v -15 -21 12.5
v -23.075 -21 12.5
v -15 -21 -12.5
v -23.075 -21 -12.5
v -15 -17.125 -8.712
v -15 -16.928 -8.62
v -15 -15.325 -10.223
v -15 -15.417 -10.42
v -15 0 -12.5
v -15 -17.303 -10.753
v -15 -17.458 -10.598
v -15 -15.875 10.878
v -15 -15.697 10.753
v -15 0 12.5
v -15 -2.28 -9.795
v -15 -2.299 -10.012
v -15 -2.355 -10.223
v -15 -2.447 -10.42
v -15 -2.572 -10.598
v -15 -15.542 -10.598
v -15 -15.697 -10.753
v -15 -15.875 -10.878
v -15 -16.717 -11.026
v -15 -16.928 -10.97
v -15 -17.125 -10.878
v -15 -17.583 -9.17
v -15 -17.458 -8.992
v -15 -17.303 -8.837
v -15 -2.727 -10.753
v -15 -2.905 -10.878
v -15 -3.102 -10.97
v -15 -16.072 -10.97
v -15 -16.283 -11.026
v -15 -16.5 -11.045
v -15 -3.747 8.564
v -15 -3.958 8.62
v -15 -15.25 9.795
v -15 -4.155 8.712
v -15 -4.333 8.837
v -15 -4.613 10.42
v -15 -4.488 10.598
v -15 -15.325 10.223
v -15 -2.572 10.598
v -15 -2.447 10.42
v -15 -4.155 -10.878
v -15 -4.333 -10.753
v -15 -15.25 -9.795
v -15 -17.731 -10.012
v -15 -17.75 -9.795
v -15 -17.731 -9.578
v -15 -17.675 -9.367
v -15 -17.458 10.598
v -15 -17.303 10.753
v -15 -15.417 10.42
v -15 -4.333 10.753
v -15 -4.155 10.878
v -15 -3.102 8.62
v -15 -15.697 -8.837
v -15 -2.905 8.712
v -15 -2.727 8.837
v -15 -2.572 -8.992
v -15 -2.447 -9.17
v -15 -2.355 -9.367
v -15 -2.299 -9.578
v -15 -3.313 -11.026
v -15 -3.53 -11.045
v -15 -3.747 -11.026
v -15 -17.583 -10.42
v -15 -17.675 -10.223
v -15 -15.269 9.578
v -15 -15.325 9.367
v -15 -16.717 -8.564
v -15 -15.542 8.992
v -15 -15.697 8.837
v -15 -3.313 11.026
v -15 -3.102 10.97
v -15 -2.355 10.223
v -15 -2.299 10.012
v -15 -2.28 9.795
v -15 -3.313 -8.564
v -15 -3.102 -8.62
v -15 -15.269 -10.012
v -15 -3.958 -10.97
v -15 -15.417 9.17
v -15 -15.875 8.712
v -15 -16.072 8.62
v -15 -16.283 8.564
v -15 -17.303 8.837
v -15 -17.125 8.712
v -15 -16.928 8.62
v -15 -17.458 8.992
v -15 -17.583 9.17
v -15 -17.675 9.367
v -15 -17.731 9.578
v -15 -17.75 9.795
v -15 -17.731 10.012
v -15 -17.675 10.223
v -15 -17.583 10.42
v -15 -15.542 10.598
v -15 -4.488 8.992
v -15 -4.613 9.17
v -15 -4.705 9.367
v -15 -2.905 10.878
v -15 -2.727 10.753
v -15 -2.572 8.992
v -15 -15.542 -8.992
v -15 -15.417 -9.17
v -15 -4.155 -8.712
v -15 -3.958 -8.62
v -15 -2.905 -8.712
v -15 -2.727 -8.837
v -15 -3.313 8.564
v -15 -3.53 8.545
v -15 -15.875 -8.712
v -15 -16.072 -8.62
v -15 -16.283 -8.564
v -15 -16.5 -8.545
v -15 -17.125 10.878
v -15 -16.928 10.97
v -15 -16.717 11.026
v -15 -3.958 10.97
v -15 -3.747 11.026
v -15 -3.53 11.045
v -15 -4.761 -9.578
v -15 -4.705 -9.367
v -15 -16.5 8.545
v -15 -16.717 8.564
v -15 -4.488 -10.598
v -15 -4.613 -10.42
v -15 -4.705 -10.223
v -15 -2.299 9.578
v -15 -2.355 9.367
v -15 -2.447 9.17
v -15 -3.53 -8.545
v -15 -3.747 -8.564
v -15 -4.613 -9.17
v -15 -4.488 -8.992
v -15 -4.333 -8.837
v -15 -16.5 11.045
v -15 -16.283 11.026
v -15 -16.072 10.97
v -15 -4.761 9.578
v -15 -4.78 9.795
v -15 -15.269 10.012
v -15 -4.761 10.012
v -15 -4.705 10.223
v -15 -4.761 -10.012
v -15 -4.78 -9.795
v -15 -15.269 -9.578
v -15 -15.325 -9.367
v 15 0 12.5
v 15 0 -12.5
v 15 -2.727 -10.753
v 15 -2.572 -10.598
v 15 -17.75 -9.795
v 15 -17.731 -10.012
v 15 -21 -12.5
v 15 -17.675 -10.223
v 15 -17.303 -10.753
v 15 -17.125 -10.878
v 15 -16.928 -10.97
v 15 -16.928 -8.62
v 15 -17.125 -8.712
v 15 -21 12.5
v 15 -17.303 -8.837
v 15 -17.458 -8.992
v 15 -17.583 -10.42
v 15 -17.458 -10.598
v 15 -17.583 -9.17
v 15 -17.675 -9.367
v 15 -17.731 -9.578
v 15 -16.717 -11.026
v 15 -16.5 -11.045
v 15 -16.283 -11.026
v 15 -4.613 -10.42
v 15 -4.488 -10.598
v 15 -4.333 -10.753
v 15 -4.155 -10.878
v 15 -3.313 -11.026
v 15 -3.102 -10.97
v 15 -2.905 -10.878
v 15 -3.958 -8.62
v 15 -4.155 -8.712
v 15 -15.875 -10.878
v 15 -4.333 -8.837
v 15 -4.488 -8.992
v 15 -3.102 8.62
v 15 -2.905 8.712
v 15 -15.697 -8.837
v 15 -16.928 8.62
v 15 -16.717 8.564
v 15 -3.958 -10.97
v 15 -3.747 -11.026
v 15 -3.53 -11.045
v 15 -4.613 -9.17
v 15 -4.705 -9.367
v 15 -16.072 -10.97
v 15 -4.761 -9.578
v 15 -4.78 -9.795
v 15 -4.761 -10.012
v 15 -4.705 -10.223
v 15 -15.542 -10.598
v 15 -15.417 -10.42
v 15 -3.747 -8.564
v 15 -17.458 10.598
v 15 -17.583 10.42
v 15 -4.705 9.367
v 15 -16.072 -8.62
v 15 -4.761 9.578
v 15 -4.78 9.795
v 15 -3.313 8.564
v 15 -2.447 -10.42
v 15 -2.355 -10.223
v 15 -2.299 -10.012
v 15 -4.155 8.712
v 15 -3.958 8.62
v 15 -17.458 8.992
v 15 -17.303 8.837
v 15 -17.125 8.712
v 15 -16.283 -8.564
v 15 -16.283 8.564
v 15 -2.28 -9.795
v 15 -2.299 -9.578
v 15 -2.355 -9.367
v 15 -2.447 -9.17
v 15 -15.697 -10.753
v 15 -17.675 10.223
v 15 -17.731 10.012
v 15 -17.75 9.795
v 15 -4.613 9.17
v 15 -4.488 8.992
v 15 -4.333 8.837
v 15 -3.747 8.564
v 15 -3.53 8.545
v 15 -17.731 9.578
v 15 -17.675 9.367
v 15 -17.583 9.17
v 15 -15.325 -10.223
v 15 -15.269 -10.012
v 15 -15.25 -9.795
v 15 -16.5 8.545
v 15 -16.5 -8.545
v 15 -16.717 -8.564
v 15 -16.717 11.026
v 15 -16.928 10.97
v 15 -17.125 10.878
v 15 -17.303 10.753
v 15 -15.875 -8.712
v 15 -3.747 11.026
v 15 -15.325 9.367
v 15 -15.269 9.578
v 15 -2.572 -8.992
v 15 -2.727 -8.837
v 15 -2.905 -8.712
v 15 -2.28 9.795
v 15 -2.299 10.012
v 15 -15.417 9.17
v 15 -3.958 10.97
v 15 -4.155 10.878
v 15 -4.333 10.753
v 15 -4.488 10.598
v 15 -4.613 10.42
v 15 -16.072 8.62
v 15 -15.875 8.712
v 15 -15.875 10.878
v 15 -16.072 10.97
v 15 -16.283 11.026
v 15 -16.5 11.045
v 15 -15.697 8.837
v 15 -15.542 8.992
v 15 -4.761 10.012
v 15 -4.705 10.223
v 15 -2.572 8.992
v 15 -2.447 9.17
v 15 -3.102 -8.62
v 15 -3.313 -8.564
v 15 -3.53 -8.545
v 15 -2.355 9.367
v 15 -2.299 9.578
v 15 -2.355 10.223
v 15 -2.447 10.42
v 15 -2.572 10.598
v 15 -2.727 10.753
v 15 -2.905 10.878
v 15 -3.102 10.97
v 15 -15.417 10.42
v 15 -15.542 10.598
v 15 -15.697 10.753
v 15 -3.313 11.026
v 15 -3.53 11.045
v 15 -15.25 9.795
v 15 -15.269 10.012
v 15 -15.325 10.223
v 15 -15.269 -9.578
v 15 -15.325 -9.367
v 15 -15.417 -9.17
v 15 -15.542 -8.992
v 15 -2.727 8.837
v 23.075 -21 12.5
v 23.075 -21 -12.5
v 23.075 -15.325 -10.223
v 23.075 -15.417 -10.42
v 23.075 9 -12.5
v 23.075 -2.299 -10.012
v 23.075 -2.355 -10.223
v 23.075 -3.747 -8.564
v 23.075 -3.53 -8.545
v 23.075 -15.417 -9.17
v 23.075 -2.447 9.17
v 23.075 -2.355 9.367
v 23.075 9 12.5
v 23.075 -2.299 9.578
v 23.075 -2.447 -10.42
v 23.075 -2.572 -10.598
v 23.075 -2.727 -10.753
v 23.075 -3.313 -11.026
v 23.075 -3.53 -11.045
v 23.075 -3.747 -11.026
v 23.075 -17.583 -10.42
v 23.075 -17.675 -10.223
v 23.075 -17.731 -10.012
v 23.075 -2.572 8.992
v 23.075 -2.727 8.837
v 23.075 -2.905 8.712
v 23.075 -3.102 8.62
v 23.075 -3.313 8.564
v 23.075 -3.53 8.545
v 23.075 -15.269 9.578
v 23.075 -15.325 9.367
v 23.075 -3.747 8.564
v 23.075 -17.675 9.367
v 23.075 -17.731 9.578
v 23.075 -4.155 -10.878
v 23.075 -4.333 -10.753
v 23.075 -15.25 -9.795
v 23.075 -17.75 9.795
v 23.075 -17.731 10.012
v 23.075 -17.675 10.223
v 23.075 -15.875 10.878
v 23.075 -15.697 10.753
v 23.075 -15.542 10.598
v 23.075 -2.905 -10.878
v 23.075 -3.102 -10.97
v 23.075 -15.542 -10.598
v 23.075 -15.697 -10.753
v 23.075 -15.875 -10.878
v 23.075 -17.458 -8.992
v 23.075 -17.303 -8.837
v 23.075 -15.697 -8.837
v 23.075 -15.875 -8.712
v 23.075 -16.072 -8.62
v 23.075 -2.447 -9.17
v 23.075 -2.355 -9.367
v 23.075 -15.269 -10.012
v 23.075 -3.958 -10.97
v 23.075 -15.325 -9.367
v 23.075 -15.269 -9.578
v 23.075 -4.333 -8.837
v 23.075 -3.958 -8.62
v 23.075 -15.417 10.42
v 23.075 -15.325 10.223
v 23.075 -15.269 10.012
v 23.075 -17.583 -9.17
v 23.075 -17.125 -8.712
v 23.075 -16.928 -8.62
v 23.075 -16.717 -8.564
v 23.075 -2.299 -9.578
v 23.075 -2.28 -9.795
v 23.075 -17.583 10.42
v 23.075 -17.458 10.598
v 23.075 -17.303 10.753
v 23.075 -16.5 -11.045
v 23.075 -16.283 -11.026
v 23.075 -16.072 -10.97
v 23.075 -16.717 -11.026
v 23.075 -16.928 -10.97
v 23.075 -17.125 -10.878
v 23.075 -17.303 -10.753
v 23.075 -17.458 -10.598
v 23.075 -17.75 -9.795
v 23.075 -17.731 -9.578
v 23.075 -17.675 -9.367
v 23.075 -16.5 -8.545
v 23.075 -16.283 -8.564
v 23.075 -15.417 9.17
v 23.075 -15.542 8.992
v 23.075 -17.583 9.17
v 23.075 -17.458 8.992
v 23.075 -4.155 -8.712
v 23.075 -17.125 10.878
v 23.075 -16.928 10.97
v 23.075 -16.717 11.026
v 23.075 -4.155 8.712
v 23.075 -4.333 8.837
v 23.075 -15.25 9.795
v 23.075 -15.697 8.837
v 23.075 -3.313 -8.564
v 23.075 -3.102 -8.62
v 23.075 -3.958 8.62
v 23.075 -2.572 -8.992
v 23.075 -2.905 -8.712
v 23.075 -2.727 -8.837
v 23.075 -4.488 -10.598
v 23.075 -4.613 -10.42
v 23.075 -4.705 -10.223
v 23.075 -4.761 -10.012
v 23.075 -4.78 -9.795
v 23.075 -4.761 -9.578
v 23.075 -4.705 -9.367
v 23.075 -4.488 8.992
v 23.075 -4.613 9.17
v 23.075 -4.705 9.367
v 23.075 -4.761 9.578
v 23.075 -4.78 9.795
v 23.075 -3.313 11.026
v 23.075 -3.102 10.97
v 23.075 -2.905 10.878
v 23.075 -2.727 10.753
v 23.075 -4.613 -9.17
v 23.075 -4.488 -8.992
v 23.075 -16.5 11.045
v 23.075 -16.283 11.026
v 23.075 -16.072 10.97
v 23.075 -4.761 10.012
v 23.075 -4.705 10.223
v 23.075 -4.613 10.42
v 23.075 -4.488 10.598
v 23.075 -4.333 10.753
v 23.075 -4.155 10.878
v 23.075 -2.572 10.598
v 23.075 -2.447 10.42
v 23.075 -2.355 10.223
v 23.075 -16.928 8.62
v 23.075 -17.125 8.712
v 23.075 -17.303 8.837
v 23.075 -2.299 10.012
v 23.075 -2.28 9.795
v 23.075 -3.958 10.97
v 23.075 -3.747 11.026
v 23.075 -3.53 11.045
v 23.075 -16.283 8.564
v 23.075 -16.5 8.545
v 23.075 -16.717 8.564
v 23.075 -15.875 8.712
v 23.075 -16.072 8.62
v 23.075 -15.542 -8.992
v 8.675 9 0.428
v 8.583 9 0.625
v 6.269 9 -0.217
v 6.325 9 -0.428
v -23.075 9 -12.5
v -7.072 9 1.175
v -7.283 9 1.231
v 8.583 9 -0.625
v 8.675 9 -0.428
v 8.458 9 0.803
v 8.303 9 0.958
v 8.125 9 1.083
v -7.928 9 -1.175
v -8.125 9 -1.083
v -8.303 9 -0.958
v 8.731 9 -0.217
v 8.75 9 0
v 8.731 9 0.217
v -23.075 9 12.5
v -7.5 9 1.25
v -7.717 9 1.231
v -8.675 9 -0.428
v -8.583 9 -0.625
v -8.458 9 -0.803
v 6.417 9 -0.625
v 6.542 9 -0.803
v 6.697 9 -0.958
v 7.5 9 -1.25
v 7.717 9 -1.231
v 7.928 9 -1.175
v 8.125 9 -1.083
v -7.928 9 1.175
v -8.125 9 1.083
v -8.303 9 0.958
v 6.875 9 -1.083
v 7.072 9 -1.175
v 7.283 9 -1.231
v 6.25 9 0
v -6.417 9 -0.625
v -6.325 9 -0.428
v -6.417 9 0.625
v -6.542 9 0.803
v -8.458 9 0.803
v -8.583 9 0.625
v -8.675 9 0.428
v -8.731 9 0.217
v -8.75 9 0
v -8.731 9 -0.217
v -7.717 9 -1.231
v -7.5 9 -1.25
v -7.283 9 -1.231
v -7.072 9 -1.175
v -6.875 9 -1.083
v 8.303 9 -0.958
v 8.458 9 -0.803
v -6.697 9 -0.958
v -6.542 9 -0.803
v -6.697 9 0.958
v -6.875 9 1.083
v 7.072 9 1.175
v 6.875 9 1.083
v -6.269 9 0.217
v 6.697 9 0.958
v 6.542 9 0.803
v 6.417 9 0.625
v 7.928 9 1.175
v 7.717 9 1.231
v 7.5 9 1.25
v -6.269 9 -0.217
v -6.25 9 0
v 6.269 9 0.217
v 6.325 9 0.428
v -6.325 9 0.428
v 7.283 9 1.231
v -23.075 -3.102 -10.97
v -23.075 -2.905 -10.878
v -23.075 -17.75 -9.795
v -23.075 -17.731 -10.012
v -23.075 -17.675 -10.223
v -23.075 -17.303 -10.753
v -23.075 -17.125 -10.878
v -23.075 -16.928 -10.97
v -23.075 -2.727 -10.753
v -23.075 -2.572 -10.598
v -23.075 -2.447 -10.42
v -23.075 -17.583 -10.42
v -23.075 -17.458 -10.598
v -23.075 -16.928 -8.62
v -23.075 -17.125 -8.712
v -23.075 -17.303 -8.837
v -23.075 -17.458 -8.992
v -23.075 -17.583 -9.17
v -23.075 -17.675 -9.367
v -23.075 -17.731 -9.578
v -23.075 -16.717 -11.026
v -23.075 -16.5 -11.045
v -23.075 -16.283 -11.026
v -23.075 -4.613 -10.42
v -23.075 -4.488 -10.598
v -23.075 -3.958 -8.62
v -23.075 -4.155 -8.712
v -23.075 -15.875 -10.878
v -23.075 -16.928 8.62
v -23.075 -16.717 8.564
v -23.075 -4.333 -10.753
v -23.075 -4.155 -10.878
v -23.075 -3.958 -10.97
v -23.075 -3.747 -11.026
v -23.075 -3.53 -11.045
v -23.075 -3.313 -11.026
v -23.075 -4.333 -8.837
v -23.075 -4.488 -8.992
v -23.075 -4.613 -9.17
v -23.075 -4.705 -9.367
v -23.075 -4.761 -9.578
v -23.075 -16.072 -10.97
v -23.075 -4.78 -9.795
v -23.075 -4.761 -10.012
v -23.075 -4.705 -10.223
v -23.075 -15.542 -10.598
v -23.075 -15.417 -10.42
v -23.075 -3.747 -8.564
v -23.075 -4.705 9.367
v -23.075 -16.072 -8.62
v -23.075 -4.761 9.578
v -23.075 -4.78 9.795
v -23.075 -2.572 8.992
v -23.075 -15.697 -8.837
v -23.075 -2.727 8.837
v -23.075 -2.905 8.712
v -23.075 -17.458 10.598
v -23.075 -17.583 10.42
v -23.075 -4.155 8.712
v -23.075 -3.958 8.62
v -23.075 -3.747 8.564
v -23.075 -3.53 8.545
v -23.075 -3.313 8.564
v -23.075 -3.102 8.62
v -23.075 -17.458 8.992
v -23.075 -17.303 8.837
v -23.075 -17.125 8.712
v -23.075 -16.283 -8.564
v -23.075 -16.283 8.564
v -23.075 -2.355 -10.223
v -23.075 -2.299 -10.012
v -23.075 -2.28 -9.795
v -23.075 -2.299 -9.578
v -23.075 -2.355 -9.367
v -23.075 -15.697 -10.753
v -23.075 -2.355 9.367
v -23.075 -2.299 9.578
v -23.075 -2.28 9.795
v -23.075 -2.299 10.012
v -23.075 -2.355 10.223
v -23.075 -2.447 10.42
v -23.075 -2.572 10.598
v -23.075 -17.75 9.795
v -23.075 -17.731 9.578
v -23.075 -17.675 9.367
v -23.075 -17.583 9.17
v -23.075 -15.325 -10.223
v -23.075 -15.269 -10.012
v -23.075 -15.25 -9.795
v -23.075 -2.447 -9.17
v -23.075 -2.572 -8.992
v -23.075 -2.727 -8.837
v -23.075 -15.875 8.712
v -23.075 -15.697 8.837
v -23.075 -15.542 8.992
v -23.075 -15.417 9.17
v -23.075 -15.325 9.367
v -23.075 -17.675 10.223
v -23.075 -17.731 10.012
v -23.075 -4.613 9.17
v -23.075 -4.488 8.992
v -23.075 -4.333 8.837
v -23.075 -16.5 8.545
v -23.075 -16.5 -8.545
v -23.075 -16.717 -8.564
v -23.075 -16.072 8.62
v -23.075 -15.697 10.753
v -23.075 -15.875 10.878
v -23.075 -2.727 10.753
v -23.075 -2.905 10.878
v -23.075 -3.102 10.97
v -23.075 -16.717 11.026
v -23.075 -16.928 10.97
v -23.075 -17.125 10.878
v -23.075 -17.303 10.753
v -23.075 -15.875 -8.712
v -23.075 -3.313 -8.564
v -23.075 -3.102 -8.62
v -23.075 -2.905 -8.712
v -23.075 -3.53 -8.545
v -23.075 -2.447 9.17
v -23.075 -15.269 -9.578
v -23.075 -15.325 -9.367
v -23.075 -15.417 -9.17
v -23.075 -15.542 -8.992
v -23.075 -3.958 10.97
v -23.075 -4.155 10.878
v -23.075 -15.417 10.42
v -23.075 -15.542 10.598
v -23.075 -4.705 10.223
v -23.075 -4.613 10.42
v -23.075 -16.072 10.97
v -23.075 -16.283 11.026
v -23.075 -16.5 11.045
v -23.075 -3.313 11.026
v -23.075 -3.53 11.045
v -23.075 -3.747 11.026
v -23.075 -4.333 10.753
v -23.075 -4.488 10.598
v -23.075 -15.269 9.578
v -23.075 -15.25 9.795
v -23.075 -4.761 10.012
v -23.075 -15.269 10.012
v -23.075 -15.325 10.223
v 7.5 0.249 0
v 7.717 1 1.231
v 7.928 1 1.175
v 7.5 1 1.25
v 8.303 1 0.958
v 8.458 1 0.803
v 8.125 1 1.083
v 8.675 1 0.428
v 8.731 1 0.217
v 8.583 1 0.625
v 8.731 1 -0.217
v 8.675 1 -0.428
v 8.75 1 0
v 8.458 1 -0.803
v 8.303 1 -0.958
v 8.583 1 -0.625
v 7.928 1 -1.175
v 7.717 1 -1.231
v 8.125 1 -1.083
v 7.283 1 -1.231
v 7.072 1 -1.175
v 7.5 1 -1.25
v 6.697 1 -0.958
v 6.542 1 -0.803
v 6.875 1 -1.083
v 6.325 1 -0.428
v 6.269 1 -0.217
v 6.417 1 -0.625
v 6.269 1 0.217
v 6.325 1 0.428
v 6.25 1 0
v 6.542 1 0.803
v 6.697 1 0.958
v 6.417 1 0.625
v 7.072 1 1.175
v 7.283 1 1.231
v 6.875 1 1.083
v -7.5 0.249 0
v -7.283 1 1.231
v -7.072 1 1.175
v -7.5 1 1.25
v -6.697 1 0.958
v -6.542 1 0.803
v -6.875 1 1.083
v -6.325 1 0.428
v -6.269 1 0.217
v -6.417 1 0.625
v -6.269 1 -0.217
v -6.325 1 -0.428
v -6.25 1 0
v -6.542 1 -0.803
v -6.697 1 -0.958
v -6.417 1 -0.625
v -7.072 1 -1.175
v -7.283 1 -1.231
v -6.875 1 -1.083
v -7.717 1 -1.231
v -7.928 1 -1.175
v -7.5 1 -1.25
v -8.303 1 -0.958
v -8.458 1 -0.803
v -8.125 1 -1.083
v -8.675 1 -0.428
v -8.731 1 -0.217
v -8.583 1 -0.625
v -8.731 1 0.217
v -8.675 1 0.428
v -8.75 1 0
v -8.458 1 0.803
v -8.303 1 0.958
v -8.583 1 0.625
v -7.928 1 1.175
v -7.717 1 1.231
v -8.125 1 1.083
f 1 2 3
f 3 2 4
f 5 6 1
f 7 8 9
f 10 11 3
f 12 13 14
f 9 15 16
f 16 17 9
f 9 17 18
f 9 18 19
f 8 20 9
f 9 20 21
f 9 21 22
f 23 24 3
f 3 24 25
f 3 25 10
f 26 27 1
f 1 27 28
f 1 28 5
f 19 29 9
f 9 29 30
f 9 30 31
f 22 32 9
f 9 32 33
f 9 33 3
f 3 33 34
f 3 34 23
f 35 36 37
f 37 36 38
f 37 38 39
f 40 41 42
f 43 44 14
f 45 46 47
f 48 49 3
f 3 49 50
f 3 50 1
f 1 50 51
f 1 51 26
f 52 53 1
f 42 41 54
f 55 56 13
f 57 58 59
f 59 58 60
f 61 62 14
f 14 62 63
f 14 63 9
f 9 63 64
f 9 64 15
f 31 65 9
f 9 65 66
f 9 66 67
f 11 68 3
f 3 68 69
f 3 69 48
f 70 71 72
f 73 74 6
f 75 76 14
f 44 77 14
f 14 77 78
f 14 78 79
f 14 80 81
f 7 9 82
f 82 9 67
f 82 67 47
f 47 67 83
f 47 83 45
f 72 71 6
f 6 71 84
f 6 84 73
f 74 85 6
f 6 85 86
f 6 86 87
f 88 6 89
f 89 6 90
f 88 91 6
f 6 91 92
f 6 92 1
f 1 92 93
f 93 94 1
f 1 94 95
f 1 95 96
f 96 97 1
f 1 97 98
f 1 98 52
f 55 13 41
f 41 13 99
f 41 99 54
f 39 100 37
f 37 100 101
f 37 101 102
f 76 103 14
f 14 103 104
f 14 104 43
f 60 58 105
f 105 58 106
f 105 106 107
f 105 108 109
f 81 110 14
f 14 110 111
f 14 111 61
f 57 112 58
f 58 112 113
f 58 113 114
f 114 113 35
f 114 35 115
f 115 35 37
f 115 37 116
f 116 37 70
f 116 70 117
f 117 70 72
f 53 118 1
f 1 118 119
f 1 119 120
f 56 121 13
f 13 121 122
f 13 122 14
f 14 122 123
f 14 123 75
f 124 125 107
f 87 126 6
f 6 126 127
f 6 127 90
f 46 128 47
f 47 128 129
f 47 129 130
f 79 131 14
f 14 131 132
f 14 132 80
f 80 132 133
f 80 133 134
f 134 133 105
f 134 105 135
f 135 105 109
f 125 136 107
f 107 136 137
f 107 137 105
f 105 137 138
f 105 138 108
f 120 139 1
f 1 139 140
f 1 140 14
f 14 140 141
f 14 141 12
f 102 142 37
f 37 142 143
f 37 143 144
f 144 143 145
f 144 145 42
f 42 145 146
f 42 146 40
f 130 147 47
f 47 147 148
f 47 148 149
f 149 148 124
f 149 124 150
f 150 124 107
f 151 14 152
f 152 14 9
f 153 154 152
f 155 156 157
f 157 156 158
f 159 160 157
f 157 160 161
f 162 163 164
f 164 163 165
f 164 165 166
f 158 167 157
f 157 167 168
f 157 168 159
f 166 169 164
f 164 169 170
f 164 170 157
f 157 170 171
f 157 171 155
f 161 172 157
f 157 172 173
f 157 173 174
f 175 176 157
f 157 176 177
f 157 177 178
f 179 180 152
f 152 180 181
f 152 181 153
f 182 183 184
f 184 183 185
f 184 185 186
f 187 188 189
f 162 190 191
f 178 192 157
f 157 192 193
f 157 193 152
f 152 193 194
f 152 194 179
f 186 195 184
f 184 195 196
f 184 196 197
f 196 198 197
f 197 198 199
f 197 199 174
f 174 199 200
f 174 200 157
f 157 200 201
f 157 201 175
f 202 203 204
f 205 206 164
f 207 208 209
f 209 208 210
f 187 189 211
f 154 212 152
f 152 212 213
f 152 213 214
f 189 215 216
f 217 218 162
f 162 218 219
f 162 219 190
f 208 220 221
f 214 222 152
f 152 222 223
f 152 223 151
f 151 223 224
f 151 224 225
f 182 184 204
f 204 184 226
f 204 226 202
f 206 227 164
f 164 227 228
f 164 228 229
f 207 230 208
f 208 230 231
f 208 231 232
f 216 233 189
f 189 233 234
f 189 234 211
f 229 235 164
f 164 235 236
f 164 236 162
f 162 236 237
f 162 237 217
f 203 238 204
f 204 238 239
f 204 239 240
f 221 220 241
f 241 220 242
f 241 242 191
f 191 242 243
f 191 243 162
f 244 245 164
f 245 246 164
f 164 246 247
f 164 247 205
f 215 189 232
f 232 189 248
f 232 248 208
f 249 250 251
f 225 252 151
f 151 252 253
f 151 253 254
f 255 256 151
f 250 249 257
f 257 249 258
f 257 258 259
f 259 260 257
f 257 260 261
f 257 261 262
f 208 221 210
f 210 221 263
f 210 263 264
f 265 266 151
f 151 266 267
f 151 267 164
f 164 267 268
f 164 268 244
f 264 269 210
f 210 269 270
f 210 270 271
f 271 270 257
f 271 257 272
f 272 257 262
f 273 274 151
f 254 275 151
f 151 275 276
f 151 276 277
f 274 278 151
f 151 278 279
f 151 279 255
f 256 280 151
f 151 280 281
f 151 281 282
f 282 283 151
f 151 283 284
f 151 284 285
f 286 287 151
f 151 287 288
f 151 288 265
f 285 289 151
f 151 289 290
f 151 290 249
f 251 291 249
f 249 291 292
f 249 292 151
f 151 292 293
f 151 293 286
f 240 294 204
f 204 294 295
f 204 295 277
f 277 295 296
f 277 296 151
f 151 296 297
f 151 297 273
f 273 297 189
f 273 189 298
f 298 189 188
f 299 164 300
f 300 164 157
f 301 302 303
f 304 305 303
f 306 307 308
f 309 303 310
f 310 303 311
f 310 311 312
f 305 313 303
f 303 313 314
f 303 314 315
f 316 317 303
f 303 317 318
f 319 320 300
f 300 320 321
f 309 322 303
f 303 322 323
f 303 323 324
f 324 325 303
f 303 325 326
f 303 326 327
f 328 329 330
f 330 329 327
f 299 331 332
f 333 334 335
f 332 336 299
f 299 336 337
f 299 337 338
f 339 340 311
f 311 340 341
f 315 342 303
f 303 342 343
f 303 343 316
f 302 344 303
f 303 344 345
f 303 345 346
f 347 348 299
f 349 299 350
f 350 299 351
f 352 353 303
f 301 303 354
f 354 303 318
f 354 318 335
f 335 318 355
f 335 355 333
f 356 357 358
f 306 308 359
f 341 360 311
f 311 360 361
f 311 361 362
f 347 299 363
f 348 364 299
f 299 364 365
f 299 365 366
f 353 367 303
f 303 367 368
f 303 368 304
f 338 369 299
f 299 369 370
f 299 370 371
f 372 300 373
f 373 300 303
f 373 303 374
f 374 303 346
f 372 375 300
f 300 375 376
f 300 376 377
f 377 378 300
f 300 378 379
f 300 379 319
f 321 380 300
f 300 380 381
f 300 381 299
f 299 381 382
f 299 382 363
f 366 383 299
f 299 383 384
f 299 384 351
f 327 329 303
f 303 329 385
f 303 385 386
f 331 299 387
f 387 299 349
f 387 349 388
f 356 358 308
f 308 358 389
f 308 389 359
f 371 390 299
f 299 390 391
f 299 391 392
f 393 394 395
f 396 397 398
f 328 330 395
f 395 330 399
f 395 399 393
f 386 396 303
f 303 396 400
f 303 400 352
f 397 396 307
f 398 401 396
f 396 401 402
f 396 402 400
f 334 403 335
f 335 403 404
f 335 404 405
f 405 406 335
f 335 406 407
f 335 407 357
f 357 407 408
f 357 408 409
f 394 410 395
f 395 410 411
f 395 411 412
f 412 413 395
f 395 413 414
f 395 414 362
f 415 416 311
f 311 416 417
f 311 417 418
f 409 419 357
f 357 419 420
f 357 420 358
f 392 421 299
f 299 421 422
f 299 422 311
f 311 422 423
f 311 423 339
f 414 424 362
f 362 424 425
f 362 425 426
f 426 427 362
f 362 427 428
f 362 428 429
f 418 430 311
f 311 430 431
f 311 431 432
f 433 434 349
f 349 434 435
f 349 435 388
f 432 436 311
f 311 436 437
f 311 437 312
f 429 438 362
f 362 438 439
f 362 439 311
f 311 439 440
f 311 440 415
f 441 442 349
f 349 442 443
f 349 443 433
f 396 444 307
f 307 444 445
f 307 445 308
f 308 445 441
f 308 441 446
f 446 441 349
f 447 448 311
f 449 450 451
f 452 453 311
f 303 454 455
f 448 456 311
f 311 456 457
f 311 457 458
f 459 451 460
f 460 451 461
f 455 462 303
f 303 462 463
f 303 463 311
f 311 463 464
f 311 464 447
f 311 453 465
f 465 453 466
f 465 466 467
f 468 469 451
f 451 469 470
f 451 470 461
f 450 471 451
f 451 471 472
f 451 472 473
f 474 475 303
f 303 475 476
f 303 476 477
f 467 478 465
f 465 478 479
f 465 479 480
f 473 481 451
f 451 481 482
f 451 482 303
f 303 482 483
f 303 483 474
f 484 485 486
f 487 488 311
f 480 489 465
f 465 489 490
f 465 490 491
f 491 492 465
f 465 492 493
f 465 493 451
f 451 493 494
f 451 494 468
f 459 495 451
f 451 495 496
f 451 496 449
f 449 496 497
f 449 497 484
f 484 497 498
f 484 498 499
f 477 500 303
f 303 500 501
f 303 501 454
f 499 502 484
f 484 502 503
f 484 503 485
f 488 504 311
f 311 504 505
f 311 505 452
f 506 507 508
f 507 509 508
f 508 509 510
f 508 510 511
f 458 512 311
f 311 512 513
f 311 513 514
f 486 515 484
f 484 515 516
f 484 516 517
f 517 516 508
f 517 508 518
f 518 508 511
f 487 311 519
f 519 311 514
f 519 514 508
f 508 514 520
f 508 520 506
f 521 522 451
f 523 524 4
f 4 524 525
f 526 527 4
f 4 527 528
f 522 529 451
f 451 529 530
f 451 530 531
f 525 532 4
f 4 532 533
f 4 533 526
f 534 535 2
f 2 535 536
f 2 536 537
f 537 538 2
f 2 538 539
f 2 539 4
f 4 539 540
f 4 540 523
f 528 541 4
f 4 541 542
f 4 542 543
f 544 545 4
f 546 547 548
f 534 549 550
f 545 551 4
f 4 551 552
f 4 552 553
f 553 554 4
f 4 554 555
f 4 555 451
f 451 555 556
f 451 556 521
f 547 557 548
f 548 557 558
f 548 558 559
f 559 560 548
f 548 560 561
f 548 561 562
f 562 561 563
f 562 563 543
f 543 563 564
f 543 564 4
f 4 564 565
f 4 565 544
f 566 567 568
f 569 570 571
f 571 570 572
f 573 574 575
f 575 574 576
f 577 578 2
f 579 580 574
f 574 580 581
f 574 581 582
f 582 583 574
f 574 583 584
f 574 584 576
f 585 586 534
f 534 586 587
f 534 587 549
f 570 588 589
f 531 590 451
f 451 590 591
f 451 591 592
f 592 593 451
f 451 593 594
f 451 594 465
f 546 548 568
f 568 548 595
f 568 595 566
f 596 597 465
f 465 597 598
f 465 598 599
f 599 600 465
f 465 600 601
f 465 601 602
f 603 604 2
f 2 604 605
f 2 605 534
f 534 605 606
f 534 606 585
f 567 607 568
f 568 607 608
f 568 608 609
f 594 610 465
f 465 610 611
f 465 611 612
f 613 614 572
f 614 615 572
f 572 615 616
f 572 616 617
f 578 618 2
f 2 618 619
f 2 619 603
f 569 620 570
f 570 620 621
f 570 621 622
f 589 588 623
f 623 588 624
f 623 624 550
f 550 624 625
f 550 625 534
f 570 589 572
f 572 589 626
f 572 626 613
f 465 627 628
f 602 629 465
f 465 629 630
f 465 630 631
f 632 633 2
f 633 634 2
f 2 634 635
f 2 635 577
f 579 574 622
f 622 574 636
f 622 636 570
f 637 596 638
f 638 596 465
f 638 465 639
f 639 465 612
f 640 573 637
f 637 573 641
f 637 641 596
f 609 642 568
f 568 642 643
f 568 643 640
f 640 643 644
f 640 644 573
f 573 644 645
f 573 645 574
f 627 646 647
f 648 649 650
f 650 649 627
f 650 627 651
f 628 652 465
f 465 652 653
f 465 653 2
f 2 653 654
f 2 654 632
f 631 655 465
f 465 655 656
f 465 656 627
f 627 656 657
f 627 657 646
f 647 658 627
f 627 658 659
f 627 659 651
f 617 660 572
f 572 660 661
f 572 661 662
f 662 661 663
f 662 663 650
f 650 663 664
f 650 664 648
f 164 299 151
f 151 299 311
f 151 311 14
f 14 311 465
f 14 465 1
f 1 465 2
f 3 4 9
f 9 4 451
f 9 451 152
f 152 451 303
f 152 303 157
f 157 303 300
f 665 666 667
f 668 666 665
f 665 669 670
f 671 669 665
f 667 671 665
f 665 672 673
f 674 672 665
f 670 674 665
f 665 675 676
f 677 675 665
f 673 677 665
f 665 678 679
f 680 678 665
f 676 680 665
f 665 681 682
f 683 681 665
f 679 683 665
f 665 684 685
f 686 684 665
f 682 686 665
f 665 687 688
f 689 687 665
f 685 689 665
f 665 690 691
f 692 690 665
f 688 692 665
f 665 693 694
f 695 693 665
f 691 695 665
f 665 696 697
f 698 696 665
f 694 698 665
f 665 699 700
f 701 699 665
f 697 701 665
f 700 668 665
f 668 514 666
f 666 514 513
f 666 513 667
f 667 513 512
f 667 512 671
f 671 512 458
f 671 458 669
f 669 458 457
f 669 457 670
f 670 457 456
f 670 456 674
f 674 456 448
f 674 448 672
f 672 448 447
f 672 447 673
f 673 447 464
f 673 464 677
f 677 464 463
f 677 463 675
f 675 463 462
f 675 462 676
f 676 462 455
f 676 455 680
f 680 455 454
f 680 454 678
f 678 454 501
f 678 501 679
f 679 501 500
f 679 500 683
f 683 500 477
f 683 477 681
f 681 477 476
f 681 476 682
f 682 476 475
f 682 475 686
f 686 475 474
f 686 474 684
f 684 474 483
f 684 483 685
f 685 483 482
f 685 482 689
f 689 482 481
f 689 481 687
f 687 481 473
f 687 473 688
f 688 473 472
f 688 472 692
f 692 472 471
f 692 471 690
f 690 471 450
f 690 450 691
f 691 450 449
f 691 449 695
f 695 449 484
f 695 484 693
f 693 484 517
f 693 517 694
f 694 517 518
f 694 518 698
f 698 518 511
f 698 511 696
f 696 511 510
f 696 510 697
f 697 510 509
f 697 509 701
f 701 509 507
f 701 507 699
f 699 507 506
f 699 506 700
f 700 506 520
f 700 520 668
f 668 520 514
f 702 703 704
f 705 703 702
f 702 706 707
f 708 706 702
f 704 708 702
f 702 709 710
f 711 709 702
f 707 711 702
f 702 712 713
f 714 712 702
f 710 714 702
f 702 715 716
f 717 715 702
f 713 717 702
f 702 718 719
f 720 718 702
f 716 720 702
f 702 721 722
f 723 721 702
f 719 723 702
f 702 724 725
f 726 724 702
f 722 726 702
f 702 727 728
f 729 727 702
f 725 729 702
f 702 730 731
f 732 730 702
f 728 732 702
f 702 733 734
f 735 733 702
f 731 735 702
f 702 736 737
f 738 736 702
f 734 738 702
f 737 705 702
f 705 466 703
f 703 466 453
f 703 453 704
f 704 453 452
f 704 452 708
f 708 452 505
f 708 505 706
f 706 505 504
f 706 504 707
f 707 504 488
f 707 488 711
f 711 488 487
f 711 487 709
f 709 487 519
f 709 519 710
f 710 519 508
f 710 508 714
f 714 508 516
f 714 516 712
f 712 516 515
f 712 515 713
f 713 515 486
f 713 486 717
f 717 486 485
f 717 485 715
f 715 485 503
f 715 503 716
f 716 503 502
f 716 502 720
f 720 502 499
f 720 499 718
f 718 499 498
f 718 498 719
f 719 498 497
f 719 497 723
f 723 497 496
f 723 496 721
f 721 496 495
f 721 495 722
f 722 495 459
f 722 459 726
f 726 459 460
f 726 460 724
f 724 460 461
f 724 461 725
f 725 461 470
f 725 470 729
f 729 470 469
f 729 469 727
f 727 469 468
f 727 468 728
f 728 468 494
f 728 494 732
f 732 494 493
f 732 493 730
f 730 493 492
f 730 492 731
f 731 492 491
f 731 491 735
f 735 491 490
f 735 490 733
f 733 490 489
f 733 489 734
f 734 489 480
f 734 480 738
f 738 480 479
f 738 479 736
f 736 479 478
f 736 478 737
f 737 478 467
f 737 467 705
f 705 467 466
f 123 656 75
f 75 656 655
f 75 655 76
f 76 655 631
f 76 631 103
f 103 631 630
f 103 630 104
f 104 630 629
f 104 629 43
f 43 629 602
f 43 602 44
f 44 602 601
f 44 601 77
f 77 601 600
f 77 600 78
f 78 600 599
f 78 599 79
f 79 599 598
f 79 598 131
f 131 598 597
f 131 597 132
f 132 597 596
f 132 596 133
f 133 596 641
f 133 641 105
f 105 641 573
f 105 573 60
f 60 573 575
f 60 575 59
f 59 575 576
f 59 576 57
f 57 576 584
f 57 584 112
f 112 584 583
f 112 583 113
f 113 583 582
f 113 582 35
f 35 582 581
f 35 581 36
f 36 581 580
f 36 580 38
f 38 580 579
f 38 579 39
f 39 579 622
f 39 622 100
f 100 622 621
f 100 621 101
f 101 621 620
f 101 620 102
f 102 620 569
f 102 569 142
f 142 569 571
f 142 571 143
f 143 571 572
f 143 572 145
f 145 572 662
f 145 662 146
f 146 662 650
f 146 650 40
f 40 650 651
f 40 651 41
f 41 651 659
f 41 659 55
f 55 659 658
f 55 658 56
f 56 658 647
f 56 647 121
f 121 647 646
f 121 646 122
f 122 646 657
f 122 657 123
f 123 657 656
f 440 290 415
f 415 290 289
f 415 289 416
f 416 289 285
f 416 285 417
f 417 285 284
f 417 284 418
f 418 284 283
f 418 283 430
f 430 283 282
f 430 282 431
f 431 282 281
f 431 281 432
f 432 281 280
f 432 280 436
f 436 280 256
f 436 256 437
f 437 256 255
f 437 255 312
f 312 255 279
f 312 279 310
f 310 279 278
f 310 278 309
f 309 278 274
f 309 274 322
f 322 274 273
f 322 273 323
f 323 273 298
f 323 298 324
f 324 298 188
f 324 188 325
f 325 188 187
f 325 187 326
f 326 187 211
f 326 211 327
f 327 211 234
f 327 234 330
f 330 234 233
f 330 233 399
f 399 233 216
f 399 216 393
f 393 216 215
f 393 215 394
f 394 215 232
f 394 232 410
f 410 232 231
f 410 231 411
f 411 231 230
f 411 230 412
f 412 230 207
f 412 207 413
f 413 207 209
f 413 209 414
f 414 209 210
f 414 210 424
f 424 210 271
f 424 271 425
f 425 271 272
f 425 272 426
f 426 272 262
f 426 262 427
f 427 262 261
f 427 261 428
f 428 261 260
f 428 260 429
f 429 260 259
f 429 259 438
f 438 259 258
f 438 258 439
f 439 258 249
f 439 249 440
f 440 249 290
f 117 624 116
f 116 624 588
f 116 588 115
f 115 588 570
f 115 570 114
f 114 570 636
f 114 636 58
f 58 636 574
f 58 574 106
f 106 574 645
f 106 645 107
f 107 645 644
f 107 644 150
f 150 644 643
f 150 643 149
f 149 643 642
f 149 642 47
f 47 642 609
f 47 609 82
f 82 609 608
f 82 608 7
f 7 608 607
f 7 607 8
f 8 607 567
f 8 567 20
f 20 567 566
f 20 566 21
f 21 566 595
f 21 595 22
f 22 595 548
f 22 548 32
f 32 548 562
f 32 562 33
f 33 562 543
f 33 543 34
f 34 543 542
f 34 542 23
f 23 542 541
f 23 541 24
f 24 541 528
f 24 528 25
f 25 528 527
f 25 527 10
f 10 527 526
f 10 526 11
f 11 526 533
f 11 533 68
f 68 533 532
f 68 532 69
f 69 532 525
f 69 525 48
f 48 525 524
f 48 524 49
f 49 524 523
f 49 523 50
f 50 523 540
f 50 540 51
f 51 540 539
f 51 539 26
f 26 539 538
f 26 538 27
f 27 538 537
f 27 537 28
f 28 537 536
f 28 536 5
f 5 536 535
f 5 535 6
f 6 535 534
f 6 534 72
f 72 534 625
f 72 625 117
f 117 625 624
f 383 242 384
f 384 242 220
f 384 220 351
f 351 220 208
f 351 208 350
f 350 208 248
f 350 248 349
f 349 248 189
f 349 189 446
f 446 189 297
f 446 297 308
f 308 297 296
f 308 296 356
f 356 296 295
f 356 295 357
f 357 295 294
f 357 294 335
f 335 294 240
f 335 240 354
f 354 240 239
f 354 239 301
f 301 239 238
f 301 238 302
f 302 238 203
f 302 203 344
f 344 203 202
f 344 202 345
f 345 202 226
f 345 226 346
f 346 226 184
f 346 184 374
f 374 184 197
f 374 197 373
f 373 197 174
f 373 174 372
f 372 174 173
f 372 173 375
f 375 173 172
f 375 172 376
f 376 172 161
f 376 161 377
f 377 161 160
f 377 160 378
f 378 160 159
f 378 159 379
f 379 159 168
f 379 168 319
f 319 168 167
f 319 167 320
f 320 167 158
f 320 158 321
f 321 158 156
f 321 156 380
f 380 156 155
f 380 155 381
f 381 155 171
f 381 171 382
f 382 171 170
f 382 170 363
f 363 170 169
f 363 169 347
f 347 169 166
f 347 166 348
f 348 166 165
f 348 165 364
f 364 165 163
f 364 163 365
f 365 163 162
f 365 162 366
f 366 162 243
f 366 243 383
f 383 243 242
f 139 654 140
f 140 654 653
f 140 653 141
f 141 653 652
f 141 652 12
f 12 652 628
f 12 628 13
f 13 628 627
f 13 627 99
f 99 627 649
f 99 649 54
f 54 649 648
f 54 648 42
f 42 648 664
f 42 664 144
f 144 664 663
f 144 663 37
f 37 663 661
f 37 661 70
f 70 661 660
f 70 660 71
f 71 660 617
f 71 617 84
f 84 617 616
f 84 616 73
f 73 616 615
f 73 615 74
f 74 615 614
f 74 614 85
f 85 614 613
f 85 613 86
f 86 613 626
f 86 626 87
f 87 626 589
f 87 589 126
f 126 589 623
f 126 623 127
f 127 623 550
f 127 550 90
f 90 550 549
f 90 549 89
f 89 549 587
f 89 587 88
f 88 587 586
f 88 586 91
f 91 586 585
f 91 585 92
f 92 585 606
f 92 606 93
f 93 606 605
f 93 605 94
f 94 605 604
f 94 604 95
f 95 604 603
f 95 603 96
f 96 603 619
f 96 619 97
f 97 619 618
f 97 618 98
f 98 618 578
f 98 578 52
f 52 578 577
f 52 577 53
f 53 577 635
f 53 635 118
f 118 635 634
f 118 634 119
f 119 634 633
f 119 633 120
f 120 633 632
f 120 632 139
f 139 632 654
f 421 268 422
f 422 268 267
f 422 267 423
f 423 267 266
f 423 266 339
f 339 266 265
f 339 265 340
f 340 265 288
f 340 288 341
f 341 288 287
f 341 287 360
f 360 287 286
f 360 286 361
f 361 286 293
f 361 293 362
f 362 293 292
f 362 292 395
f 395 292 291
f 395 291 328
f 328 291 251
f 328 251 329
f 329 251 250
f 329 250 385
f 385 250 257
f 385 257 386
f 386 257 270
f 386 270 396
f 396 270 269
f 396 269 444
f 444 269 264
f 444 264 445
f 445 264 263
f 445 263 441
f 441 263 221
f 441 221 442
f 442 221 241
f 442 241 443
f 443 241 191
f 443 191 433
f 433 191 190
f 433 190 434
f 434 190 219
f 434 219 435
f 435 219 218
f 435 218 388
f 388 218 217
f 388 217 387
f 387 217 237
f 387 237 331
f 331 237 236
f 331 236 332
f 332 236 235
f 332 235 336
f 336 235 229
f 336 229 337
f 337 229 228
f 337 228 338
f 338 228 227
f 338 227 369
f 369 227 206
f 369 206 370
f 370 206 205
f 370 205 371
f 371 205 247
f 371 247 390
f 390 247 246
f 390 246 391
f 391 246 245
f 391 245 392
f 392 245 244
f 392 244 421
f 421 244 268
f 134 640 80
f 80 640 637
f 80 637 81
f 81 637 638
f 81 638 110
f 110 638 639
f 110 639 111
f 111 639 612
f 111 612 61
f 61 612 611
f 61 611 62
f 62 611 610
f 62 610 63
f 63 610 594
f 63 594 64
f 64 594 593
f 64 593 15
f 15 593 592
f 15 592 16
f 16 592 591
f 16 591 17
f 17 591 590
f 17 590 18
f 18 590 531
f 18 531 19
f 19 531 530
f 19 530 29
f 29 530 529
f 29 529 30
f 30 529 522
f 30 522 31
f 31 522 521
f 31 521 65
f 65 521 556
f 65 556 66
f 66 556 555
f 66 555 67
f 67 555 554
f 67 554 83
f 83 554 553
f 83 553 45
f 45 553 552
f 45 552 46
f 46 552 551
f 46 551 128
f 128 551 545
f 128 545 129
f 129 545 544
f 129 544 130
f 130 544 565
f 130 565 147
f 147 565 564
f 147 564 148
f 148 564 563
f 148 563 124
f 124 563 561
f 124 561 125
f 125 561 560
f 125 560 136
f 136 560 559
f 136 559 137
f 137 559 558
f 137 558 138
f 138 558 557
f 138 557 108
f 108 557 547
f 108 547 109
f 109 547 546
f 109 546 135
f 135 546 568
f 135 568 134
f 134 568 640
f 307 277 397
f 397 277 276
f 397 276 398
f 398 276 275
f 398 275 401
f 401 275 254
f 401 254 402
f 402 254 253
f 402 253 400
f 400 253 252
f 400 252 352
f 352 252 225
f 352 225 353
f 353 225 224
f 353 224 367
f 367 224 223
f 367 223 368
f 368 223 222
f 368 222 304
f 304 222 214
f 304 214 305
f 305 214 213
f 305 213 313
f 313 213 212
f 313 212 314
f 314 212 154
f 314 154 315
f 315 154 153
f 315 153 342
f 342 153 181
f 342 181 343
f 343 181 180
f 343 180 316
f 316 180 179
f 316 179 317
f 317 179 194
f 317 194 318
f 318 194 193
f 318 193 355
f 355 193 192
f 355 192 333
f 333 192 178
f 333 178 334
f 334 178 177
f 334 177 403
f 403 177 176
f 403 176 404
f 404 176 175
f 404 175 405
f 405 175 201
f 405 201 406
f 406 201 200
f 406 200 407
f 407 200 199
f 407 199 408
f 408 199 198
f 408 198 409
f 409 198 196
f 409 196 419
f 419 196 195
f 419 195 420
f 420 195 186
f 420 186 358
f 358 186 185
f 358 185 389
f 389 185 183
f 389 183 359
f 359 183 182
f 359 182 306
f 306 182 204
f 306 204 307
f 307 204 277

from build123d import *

# Parameters (mm, degrees)
BOSS_EXTRUDE1_DEPTH       = 12.5
M3X0_5_TAPPED_HOLE1_D     = 2.5
M3X0_5_TAPPED_HOLE1_DEPTH = 8
M3X0_5_TAPPED_HOLE1_TIP   = 0.751075774
F_2_5MM_DOWEL_HOLE1_D     = 2.5


with BuildPart() as part:
    # Sketch2 → Boss-Extrude1 (new body, symmetric)
    with BuildSketch(Plane.XY):
        Polygon((-23.075, -21), (-23.075, 9), (23.075, 9), (23.075, -21), (15, -21), (15, 0), (-15, 0), (-15, -21), align=None)
    extrude(amount=BOSS_EXTRUDE1_DEPTH, both=True)

    # M3x0.5 Tapped Hole1
    with Locations(Plane(origin=(0, 9, 0), x_dir=(1, 0, 0), z_dir=(0, 1, 0))):
        with Locations((-7.5, 0), (7.5, 0)):
            Hole(M3X0_5_TAPPED_HOLE1_D / 2, depth=M3X0_5_TAPPED_HOLE1_DEPTH)
            with Locations((0, 0, -(M3X0_5_TAPPED_HOLE1_DEPTH + M3X0_5_TAPPED_HOLE1_TIP / 2))):  # 118° drill point
                Cone(0, M3X0_5_TAPPED_HOLE1_D / 2, M3X0_5_TAPPED_HOLE1_TIP, mode=Mode.SUBTRACT)

    # Ø2.5mm Dowel Hole1 (through all)
    with Locations(Plane.ZY.offset(23.075)):
        with Locations((-9.795, -3.53), (9.795, -16.5), (-9.795, -16.5), (9.795, -3.53)):
            Hole(F_2_5MM_DOWEL_HOLE1_D / 2)


solid = part.part
